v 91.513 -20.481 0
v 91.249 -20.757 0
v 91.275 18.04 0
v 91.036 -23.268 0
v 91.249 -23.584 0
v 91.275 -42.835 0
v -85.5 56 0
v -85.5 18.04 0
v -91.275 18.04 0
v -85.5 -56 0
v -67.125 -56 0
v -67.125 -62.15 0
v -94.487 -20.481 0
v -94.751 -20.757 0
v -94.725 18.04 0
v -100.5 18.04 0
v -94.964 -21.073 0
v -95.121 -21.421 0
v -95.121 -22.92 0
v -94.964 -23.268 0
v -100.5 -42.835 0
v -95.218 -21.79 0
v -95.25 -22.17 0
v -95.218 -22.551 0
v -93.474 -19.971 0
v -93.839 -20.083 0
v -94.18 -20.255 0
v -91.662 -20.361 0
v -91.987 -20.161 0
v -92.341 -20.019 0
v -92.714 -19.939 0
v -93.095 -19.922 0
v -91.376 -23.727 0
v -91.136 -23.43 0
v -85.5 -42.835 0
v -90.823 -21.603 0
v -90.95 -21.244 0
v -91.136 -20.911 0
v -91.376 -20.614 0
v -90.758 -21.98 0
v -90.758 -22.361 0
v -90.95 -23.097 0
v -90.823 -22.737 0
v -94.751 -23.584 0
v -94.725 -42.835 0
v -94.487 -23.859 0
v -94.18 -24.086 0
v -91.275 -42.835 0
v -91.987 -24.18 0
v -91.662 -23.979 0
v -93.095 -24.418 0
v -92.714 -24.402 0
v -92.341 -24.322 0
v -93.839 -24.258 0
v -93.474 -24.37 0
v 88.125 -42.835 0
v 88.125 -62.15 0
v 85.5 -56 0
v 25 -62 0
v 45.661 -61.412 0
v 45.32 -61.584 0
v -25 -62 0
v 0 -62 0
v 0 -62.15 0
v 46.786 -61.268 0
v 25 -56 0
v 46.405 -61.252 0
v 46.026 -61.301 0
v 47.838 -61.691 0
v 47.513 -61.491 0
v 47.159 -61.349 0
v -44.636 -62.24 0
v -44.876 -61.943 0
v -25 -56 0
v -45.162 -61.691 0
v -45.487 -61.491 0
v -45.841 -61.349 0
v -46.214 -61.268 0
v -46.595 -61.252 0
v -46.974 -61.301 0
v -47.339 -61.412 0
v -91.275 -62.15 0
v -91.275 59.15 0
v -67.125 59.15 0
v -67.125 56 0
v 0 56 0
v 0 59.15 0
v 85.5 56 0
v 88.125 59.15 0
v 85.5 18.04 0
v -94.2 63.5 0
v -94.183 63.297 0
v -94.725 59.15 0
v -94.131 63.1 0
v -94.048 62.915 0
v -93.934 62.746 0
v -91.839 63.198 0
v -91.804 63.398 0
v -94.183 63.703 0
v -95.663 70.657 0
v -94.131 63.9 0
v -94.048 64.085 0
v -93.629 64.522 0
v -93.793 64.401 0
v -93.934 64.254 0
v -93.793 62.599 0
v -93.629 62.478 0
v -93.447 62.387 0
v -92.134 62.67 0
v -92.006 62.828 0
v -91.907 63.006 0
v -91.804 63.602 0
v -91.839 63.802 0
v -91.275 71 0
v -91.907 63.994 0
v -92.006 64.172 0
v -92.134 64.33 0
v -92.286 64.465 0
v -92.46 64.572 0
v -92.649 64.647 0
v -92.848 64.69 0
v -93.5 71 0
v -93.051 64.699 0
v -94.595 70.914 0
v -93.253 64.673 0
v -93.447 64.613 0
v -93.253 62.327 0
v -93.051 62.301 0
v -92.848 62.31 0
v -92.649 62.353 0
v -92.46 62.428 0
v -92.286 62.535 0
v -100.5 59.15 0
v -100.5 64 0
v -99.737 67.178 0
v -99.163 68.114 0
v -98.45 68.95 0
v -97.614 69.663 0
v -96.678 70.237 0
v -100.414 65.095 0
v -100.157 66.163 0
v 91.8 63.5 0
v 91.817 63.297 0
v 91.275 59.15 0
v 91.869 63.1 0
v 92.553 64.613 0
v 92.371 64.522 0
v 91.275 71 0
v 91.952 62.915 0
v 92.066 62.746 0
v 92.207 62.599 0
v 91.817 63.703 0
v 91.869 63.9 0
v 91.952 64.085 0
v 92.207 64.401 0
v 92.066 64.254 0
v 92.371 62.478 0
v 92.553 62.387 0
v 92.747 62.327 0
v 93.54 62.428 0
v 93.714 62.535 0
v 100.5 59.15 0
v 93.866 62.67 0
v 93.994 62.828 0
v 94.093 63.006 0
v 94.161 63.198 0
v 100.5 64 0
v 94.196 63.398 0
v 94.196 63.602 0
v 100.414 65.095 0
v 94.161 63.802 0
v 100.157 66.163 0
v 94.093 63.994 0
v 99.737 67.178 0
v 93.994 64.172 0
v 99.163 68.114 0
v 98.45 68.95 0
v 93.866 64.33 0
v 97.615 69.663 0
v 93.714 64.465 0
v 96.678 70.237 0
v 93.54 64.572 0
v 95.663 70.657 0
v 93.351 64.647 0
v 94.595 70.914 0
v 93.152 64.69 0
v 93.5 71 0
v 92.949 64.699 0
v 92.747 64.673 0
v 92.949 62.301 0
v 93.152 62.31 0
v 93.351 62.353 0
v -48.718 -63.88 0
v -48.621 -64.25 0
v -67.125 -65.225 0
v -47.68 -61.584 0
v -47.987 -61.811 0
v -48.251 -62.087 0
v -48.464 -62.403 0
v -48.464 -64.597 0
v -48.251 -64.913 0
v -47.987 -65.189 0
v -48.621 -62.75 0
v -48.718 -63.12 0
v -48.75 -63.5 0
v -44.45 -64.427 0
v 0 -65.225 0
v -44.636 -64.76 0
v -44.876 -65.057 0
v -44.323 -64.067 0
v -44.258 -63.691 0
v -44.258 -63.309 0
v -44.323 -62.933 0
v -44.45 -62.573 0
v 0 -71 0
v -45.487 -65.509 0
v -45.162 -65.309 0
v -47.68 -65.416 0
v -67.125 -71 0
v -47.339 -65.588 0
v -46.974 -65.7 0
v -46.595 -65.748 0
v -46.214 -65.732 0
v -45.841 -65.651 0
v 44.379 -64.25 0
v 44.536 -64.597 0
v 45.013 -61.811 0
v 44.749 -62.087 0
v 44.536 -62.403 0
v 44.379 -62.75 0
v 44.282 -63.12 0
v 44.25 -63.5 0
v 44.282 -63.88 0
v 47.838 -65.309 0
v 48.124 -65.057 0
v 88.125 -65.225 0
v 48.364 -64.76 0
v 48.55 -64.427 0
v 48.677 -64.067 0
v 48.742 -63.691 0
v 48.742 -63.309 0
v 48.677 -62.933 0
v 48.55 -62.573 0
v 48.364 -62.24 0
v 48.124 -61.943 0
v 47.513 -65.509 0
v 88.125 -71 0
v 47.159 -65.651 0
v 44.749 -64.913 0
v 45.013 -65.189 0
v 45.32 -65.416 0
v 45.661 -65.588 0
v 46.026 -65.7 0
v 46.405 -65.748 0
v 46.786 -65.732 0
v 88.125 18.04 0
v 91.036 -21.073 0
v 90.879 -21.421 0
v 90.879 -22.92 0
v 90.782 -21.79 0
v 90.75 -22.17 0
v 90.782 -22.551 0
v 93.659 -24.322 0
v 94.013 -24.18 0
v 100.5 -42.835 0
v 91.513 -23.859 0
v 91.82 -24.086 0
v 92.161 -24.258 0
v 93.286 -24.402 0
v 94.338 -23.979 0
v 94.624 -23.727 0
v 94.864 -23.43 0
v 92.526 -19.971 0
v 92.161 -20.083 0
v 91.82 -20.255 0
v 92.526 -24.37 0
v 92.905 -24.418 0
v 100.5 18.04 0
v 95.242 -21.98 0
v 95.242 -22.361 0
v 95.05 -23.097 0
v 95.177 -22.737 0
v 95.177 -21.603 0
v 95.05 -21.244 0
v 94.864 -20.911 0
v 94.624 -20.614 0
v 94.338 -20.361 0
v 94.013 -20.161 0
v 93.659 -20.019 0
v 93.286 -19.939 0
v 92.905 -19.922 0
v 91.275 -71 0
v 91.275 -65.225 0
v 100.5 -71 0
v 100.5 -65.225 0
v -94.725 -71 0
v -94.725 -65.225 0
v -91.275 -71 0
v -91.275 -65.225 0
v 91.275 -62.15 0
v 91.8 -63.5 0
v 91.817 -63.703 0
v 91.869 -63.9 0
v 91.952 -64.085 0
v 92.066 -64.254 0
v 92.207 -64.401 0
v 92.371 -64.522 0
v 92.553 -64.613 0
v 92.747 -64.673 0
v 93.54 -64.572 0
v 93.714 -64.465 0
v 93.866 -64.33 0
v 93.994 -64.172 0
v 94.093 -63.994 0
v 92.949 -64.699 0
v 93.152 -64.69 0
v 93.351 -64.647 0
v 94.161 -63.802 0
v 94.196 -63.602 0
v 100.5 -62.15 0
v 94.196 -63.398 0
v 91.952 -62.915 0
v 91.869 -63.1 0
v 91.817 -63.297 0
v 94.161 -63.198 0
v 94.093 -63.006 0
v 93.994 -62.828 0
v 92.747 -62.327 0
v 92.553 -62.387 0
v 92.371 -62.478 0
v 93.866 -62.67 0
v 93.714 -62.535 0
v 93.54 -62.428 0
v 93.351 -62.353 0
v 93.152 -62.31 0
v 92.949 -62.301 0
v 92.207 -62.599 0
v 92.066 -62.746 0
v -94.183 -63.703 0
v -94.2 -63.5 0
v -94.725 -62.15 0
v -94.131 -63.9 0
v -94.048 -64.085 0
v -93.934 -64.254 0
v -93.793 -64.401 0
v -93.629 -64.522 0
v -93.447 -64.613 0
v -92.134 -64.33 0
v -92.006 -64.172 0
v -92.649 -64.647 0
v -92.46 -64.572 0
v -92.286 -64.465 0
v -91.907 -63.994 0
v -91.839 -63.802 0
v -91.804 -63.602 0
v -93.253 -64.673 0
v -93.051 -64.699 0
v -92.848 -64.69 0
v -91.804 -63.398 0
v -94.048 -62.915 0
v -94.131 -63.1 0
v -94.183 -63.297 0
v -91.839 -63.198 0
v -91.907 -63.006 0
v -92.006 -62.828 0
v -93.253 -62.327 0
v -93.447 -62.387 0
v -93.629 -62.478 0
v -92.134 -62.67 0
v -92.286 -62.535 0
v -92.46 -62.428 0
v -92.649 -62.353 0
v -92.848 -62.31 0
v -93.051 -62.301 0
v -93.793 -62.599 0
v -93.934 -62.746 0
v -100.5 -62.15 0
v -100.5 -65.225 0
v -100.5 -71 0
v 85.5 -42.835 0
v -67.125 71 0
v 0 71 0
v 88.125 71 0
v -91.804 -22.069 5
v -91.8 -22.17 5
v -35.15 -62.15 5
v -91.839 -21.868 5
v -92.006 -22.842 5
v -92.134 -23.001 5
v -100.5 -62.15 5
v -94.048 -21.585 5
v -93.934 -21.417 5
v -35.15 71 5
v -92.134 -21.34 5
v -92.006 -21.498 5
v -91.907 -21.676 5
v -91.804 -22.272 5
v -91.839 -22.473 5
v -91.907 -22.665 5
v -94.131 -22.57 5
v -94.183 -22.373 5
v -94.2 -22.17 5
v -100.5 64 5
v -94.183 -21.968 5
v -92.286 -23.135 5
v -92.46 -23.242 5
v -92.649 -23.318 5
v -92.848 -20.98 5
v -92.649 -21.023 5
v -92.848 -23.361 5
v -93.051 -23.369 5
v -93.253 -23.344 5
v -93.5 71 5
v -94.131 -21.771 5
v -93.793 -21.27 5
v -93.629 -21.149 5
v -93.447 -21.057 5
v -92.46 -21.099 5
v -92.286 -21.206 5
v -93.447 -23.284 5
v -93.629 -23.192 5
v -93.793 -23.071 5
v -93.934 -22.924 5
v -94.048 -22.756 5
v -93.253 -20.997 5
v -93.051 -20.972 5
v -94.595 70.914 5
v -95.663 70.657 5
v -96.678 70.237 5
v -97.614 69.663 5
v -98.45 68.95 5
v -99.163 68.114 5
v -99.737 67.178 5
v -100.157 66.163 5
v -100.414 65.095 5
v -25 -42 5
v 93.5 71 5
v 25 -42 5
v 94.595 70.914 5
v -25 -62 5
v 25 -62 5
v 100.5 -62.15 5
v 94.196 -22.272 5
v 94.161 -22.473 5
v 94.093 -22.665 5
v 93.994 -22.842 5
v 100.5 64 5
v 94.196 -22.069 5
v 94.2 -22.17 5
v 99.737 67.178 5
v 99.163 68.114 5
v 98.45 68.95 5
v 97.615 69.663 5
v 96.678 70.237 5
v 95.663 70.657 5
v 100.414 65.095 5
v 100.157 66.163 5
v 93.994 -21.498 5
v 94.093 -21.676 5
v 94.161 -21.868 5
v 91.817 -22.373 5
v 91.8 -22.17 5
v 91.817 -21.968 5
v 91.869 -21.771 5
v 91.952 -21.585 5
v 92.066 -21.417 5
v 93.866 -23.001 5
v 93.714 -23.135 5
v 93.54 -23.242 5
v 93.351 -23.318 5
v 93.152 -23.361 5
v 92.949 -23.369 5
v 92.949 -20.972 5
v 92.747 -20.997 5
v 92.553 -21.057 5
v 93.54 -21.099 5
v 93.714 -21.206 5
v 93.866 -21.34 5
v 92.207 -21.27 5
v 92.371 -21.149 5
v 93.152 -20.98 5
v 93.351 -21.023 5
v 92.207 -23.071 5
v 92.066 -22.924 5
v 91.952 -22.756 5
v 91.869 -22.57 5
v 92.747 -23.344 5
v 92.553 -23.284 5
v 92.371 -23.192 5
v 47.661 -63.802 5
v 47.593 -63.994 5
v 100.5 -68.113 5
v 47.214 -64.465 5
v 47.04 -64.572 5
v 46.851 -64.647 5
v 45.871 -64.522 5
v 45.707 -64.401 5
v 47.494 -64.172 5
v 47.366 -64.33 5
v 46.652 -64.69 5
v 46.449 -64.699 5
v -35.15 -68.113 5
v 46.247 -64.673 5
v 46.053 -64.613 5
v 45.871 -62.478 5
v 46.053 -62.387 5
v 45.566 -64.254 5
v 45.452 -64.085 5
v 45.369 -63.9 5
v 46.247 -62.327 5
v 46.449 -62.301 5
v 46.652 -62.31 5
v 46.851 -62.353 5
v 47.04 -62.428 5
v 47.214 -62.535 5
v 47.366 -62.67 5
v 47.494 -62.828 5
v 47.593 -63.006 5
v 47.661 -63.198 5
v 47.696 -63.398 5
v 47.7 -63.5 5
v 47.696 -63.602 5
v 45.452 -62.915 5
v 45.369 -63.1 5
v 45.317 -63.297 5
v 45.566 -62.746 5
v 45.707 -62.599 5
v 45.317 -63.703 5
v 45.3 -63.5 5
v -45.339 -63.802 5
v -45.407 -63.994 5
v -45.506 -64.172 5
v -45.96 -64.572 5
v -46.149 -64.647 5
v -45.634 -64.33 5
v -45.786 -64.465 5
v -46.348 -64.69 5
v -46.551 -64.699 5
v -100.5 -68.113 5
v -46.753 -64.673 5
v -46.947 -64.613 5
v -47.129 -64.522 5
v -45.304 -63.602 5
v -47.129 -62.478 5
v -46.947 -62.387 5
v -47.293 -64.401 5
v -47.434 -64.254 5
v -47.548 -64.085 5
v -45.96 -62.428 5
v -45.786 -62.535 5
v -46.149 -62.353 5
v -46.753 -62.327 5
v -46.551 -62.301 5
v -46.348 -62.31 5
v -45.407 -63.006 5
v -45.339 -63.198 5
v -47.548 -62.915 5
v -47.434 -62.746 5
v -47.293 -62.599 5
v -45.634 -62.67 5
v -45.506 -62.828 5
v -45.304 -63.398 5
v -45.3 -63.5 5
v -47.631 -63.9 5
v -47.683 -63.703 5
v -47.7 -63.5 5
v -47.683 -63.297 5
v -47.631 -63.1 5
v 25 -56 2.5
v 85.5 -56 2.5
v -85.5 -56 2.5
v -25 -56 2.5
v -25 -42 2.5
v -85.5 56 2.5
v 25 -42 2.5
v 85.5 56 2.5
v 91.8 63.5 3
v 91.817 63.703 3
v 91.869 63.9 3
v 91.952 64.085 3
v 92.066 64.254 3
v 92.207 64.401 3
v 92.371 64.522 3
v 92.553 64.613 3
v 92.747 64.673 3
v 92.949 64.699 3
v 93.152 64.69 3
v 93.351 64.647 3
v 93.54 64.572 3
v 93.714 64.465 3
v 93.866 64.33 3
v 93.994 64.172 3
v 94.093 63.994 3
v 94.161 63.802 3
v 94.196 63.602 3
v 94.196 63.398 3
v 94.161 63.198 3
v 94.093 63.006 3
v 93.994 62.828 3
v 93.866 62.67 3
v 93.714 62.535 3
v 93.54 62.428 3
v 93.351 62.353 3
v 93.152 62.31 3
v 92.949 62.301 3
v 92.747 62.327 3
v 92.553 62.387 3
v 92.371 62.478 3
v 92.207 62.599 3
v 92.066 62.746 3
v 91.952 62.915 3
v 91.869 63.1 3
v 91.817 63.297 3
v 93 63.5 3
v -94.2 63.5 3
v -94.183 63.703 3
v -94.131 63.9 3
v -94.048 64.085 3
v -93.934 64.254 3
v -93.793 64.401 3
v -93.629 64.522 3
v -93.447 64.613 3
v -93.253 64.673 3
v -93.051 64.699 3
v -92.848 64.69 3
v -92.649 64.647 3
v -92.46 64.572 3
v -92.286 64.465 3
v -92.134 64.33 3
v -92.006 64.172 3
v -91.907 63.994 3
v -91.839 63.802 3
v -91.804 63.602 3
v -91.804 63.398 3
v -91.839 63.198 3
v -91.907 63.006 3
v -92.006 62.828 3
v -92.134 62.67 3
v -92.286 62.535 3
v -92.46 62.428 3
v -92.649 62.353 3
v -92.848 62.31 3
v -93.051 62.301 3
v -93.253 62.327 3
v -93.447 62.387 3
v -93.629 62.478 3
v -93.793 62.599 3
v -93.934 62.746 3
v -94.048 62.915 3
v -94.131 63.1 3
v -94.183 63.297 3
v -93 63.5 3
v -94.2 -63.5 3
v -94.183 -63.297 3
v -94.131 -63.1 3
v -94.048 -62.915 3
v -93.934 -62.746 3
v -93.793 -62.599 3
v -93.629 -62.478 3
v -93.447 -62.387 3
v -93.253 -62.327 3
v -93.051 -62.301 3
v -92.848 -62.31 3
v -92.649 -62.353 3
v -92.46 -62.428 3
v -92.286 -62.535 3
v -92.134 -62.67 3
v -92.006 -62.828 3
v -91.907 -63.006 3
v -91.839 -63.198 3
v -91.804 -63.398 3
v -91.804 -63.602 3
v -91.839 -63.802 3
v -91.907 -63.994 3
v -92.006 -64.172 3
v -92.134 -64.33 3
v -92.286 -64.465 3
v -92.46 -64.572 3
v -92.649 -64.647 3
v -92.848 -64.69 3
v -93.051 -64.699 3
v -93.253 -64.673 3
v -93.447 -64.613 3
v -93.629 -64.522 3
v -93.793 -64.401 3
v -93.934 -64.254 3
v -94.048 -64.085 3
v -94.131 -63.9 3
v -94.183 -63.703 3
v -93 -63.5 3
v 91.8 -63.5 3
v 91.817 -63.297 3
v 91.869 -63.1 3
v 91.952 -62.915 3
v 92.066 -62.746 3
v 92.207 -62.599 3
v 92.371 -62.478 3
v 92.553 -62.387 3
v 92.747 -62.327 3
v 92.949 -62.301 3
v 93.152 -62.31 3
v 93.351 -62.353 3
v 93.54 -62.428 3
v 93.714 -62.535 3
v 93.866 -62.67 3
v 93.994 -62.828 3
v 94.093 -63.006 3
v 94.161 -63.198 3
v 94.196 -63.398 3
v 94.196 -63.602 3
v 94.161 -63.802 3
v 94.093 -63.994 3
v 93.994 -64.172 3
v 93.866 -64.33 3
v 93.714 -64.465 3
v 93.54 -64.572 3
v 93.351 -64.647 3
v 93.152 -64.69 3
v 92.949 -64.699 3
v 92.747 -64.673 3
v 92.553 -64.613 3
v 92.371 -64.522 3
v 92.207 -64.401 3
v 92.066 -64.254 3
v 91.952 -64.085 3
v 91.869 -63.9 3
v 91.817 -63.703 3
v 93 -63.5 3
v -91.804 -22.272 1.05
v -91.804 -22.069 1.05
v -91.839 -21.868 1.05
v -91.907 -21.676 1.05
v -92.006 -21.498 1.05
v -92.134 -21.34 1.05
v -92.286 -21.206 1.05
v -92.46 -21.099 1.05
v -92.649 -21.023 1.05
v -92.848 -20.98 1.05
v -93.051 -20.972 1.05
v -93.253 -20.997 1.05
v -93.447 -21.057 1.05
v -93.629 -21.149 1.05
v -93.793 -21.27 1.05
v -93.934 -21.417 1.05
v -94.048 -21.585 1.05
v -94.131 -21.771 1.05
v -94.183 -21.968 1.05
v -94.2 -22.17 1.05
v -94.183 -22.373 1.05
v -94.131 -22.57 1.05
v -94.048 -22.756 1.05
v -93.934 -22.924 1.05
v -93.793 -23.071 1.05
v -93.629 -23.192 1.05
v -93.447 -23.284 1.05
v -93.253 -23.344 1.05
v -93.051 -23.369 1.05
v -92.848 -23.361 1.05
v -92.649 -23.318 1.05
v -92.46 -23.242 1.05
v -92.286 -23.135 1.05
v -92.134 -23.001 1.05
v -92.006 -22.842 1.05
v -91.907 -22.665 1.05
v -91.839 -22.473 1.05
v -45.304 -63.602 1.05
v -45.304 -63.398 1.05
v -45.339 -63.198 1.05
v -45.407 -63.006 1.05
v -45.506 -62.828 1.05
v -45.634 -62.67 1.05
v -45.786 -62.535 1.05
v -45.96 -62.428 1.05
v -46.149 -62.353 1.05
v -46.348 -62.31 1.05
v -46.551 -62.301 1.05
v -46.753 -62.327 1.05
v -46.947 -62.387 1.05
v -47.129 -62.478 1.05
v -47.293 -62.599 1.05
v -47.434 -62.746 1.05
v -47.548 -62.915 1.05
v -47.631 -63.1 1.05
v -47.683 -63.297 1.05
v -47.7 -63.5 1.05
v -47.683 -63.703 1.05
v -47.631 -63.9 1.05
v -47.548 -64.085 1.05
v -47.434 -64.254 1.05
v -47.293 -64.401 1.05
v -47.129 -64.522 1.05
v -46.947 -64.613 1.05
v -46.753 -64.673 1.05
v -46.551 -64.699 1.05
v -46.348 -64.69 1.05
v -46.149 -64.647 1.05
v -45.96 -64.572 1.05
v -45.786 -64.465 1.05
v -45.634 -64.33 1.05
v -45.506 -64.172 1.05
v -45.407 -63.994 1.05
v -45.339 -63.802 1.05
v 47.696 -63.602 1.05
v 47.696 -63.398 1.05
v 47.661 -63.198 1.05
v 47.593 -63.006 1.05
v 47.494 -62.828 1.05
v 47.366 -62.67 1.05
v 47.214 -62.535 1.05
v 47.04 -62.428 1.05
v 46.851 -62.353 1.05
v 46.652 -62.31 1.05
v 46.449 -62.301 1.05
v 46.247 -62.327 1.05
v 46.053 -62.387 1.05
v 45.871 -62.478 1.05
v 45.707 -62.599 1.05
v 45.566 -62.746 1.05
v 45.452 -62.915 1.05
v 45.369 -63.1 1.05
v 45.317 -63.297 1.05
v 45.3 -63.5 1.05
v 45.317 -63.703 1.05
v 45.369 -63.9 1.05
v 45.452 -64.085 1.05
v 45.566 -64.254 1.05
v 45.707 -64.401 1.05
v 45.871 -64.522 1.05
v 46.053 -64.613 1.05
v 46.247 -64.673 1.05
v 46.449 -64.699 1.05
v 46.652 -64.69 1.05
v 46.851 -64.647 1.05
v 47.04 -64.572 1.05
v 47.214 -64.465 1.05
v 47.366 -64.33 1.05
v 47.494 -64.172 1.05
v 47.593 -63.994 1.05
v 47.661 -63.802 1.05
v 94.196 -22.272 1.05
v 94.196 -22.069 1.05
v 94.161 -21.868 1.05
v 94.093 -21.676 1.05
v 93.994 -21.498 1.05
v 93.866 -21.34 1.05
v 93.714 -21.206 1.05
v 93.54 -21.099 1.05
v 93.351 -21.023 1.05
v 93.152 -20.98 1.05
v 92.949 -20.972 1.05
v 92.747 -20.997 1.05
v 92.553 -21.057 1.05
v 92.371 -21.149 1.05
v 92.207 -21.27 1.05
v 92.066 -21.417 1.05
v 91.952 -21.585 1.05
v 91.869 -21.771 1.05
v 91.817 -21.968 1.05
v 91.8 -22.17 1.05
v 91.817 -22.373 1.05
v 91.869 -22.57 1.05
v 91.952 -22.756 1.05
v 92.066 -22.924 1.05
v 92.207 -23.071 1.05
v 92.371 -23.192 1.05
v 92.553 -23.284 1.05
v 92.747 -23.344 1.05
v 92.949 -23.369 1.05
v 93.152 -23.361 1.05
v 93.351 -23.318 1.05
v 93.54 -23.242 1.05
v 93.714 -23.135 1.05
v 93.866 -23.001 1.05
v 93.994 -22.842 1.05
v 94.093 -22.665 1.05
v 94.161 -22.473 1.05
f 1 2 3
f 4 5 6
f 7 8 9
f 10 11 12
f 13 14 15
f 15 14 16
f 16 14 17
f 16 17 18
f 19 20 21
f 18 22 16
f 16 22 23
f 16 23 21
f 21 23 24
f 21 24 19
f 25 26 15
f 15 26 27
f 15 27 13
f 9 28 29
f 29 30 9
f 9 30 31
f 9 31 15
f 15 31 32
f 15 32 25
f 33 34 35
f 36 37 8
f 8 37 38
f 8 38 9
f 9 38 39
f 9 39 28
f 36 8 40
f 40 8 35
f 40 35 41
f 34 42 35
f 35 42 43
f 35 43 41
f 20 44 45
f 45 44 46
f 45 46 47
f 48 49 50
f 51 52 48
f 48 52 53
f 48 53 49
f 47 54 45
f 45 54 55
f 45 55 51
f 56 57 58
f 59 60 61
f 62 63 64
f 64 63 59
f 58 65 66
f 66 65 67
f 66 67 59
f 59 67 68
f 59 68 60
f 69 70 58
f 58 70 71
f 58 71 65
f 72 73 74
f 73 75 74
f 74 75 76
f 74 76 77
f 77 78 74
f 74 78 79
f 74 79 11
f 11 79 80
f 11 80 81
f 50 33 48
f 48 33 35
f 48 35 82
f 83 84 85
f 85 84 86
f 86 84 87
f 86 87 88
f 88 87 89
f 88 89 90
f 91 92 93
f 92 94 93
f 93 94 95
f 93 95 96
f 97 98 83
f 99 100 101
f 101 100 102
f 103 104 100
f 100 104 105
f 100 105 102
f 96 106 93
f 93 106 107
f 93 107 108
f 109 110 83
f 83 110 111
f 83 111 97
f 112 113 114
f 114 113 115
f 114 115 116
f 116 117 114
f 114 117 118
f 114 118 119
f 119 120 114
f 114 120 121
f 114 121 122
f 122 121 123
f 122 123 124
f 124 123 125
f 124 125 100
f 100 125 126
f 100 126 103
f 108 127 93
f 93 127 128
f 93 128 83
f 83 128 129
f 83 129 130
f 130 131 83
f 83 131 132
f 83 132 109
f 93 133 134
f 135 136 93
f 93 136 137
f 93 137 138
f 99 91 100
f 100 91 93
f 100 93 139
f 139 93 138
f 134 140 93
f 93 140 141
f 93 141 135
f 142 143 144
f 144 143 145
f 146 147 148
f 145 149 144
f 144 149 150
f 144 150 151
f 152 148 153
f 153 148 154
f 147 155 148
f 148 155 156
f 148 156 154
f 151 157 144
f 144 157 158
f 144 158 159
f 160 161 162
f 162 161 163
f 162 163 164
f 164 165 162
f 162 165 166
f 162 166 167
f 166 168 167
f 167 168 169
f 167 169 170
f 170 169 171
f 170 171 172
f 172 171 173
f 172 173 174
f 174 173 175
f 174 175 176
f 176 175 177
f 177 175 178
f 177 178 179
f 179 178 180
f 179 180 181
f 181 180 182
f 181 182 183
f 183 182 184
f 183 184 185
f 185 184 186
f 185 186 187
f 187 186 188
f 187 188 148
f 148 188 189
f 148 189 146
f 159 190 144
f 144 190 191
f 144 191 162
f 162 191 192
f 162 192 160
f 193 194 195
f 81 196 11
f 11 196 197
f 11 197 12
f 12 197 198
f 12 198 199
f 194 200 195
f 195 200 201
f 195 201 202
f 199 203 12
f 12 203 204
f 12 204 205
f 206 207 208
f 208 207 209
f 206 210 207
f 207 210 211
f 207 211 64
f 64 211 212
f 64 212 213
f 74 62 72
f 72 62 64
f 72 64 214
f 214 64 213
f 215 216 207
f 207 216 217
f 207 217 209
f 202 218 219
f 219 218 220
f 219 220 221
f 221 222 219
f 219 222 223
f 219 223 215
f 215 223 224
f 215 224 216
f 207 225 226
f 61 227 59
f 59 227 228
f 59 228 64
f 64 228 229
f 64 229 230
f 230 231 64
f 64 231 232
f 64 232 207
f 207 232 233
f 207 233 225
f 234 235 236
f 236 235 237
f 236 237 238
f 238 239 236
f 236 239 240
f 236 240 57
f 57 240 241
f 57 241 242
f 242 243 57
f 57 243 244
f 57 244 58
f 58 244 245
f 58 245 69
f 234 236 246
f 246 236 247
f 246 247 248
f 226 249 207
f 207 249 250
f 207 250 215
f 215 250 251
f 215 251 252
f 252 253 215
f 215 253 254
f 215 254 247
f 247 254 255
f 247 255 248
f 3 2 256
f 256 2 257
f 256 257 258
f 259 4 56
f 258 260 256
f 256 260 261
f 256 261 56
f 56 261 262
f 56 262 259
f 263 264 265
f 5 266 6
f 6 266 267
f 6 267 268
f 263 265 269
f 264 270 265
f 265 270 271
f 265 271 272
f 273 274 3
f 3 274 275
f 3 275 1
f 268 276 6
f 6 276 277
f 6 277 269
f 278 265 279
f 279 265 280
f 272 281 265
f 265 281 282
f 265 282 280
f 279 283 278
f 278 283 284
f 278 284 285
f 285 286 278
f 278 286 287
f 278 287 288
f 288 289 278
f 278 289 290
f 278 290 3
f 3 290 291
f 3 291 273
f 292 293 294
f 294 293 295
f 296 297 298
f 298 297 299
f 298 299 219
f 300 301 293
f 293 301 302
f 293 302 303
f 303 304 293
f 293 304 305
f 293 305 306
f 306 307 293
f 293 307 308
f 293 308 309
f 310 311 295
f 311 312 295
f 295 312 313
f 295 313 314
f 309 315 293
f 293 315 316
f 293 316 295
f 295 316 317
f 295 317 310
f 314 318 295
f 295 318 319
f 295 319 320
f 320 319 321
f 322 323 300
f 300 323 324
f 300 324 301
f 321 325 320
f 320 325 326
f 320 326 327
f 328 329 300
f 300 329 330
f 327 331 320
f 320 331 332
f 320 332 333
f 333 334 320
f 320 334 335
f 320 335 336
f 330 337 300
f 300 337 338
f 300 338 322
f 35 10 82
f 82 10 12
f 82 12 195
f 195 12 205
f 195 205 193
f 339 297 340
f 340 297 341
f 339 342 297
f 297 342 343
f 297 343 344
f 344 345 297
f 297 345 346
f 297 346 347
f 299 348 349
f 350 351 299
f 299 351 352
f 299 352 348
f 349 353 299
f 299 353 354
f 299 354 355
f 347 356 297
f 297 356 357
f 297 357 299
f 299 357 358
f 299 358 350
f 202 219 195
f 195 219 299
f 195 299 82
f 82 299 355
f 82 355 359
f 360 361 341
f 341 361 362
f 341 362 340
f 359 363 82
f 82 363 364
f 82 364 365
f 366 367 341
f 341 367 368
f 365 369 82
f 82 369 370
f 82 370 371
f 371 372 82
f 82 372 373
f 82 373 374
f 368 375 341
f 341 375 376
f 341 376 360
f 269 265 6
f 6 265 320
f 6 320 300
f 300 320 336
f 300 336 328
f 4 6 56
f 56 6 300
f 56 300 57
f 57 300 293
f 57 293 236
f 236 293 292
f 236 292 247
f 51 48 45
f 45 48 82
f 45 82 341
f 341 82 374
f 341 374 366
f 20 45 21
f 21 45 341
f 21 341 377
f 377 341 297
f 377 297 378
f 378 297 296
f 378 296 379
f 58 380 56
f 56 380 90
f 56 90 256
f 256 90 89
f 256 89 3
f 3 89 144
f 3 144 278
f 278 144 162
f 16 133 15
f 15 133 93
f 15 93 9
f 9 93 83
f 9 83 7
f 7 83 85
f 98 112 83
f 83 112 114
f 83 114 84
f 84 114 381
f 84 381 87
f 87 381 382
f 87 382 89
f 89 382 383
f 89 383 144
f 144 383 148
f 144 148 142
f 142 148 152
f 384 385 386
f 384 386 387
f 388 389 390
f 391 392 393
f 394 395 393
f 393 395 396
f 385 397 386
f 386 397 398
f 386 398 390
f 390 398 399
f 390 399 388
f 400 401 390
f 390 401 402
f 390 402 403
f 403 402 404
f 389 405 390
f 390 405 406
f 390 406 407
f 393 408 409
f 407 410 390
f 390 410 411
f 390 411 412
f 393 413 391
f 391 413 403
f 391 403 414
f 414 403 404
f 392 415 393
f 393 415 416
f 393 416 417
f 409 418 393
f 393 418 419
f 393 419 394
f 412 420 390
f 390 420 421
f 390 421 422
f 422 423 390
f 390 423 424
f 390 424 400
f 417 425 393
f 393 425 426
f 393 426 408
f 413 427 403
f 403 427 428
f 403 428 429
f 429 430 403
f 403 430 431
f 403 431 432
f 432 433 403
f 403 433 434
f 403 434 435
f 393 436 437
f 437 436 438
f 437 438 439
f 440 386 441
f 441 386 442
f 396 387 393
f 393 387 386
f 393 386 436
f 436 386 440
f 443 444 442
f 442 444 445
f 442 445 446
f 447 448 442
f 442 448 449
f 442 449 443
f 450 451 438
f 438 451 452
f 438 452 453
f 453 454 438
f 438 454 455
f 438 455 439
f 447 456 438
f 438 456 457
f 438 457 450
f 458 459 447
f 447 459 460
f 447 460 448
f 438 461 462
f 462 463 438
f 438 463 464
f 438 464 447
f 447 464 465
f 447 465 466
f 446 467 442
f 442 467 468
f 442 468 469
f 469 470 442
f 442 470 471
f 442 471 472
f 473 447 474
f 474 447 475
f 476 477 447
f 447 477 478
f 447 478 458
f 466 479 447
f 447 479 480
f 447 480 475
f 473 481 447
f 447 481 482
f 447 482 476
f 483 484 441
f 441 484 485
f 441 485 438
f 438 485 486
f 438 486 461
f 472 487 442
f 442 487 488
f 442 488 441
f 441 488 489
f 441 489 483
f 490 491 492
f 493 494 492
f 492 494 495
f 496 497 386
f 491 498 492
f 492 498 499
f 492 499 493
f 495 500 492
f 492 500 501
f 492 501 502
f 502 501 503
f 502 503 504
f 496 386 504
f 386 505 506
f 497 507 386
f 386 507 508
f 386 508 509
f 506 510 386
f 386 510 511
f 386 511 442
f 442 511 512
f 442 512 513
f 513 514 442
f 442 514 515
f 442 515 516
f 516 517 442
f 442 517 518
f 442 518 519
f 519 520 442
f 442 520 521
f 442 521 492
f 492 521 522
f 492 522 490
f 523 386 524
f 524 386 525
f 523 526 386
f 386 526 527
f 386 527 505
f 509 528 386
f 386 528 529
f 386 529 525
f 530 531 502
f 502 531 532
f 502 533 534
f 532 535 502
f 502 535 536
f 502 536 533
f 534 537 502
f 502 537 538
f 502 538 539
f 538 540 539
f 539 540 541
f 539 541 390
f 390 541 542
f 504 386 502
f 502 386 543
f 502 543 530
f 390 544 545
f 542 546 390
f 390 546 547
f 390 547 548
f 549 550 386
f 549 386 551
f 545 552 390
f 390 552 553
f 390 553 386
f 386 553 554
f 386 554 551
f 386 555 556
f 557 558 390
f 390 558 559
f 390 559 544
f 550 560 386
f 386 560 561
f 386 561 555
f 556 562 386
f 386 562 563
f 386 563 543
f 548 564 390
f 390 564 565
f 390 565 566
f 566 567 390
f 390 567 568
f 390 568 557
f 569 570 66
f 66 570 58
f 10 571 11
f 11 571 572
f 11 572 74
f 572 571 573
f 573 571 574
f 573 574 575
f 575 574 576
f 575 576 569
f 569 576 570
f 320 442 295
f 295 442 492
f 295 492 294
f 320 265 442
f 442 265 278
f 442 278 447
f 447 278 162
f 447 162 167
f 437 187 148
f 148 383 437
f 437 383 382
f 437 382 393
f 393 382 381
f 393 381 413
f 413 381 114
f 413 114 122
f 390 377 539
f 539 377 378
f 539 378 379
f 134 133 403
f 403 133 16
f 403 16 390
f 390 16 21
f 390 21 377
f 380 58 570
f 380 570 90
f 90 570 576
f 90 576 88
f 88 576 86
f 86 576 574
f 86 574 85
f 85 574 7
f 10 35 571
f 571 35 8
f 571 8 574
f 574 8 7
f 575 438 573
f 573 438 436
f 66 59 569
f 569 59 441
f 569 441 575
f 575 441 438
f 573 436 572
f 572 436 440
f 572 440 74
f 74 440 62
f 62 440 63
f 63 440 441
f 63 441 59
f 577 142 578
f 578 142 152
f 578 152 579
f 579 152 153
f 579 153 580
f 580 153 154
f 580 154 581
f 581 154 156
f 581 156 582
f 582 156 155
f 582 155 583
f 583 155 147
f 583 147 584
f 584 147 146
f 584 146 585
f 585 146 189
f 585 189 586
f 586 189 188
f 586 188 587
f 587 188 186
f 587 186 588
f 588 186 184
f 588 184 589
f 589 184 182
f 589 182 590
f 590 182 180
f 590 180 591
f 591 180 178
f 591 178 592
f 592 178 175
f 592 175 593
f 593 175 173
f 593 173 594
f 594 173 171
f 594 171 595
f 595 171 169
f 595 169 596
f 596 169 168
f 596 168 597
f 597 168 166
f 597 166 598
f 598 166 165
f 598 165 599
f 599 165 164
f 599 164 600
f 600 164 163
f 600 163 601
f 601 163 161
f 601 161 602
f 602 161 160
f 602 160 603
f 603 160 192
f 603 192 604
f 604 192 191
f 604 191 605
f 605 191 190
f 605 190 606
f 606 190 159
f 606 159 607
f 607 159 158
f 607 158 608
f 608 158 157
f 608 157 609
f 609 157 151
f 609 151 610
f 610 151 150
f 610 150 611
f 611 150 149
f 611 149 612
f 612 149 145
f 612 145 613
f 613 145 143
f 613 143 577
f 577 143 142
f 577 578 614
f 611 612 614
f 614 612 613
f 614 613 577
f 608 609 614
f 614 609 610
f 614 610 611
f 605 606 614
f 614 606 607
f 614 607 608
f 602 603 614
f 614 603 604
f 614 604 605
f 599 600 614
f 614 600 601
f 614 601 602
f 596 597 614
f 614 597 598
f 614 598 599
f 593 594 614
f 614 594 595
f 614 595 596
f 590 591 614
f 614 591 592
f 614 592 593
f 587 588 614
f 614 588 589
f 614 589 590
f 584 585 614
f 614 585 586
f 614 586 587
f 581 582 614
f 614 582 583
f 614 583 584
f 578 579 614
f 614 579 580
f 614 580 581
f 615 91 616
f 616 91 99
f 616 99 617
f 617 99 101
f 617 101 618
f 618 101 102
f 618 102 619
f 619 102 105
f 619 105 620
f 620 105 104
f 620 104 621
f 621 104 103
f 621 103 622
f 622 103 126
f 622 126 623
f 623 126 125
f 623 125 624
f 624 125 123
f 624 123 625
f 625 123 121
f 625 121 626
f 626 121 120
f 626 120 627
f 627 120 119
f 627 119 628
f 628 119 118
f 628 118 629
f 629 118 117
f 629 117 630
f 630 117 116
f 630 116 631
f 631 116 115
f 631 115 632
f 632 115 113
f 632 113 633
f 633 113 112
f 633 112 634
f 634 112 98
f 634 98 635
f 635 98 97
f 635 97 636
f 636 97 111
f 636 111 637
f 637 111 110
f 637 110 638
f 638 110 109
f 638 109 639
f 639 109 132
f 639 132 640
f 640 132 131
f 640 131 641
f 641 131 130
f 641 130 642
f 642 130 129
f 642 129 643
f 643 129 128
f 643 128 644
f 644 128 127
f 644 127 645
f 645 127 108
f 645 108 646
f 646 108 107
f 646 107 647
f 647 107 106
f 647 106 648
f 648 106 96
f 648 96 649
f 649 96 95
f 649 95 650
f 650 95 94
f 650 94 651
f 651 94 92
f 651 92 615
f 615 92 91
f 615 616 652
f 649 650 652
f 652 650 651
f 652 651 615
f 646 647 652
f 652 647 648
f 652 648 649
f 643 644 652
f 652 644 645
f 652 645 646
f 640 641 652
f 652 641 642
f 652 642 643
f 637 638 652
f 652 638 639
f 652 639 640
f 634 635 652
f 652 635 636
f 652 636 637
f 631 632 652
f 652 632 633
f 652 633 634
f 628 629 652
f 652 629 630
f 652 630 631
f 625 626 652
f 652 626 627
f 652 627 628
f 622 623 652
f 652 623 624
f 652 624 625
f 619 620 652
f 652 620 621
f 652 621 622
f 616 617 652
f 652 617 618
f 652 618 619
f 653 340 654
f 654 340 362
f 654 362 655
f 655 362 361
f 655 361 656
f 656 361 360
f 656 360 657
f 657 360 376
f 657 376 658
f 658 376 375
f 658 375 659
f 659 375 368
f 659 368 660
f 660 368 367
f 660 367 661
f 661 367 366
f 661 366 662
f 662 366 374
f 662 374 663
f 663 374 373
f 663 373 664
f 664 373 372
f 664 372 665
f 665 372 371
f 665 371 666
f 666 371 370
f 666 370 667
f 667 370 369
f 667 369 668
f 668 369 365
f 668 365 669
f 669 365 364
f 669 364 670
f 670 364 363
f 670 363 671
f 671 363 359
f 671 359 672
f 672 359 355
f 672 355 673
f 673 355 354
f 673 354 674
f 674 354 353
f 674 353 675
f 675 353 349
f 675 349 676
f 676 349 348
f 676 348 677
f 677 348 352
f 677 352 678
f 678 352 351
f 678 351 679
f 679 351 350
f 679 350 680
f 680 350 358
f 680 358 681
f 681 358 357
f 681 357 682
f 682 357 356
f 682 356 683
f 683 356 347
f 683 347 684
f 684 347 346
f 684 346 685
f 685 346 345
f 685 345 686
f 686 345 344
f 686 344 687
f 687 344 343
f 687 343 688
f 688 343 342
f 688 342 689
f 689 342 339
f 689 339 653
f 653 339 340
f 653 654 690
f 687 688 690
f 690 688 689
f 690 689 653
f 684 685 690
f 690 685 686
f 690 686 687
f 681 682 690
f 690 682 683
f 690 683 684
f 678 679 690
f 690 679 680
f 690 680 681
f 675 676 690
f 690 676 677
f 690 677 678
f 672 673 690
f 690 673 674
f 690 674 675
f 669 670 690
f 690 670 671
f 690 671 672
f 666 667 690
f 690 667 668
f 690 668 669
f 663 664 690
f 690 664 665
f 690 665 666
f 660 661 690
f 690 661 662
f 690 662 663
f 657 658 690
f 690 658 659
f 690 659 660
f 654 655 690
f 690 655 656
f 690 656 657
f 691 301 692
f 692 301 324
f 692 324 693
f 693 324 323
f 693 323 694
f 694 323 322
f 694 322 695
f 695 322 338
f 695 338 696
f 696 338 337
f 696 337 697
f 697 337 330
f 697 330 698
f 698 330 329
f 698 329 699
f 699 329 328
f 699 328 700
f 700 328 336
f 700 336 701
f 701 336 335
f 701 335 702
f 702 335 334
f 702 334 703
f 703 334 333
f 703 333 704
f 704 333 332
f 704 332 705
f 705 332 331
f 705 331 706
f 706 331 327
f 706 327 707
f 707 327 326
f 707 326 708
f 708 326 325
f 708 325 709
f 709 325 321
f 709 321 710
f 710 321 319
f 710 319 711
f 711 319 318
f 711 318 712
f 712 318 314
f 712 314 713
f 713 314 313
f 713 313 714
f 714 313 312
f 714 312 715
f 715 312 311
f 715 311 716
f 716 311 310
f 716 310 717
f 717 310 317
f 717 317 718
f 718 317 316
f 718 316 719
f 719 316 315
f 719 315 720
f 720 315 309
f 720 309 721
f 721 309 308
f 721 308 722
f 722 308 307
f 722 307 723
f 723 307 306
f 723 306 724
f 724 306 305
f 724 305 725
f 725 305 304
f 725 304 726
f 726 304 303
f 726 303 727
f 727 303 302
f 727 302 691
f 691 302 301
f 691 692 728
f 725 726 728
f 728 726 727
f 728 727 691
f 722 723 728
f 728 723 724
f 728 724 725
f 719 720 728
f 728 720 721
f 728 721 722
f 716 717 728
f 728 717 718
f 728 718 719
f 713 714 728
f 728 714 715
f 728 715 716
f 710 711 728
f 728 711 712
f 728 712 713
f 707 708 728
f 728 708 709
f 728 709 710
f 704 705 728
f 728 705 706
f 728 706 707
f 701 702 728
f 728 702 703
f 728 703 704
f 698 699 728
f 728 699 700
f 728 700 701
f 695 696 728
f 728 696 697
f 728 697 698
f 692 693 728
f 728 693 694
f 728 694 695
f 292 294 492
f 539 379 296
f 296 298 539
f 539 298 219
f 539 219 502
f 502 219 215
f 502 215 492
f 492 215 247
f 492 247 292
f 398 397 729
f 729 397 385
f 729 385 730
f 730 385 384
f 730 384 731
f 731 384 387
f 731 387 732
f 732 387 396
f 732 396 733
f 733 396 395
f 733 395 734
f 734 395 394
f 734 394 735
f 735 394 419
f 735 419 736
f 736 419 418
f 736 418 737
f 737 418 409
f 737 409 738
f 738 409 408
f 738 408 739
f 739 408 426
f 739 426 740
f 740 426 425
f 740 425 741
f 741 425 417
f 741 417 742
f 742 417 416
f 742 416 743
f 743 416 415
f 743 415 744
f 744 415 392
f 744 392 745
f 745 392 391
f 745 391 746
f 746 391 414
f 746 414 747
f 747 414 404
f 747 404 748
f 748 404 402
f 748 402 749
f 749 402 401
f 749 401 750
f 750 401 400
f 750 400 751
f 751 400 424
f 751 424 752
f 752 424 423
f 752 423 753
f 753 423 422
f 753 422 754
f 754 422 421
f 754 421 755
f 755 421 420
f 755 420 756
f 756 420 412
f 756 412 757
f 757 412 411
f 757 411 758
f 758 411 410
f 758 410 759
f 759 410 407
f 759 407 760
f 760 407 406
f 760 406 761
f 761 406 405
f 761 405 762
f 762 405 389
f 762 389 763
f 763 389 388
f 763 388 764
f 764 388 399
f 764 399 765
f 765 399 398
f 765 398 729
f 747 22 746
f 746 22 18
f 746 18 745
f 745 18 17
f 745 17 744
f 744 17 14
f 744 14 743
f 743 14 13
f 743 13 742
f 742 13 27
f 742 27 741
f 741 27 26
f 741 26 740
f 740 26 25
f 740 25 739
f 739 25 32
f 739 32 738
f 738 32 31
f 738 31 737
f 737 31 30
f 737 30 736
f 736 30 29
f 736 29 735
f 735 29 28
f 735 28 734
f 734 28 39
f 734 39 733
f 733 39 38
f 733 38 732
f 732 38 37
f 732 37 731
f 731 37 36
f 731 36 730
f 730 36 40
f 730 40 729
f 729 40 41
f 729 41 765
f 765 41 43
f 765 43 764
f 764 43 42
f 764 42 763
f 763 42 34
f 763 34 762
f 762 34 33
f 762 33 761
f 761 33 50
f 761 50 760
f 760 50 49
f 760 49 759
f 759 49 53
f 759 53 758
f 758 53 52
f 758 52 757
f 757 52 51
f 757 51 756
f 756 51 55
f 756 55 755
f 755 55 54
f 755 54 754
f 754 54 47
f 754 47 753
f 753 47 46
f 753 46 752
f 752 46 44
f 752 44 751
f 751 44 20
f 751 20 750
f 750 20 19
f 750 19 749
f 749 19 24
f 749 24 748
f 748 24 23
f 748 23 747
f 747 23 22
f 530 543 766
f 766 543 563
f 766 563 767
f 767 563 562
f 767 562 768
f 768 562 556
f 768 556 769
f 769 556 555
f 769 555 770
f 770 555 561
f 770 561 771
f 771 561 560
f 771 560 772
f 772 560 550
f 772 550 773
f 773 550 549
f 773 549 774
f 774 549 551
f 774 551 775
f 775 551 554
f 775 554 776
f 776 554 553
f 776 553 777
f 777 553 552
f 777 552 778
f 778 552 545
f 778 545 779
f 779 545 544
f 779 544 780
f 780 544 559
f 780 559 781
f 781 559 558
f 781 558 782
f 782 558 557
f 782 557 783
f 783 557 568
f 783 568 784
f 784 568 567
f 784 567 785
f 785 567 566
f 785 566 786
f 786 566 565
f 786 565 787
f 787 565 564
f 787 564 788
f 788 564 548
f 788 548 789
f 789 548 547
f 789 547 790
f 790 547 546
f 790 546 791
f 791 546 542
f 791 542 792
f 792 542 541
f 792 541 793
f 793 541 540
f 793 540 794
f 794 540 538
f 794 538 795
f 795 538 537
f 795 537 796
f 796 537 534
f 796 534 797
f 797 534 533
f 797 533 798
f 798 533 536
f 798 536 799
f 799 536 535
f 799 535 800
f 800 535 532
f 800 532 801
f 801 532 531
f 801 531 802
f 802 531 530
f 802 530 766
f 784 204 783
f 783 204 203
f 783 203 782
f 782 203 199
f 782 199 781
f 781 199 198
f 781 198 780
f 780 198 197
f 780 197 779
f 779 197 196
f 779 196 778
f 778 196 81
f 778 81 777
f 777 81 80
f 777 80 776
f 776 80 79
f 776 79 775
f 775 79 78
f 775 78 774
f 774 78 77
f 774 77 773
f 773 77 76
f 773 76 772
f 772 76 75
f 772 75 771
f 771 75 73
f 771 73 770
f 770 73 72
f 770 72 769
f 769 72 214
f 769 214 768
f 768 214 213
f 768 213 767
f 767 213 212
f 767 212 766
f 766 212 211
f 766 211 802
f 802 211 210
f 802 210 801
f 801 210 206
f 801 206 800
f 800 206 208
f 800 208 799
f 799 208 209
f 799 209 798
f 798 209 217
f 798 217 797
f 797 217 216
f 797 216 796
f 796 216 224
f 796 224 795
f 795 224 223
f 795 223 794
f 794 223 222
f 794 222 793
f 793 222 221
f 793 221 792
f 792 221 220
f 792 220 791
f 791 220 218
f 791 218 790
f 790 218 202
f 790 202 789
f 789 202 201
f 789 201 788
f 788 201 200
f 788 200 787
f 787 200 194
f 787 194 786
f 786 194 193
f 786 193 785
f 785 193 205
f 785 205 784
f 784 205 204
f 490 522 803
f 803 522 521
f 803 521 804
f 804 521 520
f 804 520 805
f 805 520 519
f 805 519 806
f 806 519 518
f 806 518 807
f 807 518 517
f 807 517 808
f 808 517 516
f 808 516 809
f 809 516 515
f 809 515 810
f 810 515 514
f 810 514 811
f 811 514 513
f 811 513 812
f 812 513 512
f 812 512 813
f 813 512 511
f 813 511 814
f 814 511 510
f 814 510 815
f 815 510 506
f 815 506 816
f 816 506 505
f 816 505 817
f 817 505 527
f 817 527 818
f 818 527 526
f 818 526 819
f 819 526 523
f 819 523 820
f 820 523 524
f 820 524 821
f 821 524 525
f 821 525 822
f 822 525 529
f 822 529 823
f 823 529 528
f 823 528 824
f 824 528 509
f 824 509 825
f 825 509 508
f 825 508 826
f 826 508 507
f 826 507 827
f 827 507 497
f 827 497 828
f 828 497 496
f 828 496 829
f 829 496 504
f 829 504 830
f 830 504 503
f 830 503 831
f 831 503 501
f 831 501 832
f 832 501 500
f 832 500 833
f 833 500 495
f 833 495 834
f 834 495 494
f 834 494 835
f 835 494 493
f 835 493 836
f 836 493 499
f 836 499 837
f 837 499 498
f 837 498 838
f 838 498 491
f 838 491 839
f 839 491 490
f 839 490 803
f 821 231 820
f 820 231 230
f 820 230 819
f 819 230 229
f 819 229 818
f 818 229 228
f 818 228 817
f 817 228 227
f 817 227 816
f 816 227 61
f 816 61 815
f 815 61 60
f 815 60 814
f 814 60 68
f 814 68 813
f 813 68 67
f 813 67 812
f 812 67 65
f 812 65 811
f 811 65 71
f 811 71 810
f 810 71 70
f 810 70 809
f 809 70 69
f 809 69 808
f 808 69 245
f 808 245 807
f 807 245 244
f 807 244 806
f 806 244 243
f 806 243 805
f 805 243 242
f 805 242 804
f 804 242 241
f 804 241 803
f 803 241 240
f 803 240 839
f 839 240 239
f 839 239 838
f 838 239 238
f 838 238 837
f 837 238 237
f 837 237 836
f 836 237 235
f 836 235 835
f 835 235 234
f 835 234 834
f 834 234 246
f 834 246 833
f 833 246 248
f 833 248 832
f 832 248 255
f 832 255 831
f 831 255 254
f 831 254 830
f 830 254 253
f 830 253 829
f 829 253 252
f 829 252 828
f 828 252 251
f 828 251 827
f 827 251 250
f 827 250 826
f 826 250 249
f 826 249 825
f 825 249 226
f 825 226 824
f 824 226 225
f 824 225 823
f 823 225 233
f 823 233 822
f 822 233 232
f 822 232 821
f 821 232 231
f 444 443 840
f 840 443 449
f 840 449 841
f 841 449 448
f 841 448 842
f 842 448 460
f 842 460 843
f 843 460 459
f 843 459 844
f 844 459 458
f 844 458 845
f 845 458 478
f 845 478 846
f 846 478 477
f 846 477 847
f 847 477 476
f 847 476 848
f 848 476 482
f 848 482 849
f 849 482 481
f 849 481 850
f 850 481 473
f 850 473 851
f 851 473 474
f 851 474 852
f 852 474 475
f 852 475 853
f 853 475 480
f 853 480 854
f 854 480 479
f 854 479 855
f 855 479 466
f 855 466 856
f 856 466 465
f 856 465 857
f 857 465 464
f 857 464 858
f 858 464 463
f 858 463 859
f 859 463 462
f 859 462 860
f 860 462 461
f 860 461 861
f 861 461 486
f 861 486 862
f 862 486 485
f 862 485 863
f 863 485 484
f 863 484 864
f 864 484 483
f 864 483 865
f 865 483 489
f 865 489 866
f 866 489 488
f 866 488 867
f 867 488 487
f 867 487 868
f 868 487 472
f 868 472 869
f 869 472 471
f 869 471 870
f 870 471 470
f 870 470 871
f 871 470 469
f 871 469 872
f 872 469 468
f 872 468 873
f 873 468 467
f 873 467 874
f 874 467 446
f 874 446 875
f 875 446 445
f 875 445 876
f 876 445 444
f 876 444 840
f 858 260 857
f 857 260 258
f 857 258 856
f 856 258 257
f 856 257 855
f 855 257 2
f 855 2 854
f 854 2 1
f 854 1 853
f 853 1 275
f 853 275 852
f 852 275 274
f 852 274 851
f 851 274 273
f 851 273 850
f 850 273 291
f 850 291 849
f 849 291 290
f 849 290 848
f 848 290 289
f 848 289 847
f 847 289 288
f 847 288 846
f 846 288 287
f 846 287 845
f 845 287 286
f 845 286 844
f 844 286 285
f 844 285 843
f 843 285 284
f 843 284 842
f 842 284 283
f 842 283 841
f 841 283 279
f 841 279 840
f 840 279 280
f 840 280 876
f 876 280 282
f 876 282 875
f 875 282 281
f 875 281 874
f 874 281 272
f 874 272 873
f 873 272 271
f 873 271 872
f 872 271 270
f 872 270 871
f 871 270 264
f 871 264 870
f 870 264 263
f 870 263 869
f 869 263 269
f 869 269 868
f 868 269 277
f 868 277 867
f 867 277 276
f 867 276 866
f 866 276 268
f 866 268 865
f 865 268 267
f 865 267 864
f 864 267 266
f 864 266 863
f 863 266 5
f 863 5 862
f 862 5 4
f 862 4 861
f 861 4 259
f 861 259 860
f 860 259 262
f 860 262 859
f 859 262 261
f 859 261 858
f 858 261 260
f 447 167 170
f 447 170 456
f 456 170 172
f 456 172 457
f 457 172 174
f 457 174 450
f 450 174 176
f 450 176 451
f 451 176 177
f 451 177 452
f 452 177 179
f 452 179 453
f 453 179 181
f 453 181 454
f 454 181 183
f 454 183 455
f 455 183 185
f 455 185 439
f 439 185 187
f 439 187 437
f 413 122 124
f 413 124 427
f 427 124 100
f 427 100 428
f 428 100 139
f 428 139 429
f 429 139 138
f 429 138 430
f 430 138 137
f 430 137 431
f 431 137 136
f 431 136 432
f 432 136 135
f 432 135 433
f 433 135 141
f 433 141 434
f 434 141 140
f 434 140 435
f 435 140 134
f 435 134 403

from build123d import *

# Parameters (mm, degrees)
SKETCH_3_W                = 201
SKETCH_3_H                = 142
EXTRUDE_2_DEPTH           = 5
SKETCH_4_W                = 171
SKETCH_4_H                = 112
CUT_EXTRUDE_1_DEPTH       = 2.5
SKETCH_5_W                = 50
SKETCH_5_H                = 20
CUT_EXTRUDE_6_DEPTH       = 15
SKETCH_6_R                = 1.2
CUT_EXTRUDE_7_DEPTH       = 3
CUT_EXTRUDE_8_REACH       = 215.23
HOLE_WIZARD_1_D           = 2.4
HOLE_WIZARD_1_CSINK_D     = 4.5
HOLE_WIZARD_1_CSINK_ANGLE = 90
FILLET_1_R                = 7


with BuildPart() as part:
    # 草图3 → 凸台-拉伸2 (new body)
    with BuildSketch(Plane.XY):
        Rectangle(SKETCH_3_W, SKETCH_3_H)
    extrude(amount=EXTRUDE_2_DEPTH)

    # 草图4 → 切除-拉伸1 (cut)
    with BuildSketch(Plane.XY):
        Rectangle(SKETCH_4_W, SKETCH_4_H)
    extrude(amount=CUT_EXTRUDE_1_DEPTH, mode=Mode.SUBTRACT)

    # 草图5 → 切除-拉伸6 (cut)
    with BuildSketch(Plane.XY):
        with Locations((0, -52)):
            Rectangle(SKETCH_5_W, SKETCH_5_H)
    extrude(amount=CUT_EXTRUDE_6_DEPTH, mode=Mode.SUBTRACT)

    # 草图6 → 切除-拉伸7 (cut)
    with BuildSketch(Plane(origin=(0, 0, 0), x_dir=(-1, 0, 0), z_dir=(0, 0, -1))):
        with Locations((-93, 63.5)):
            Circle(SKETCH_6_R)
        with Locations((93, 63.5)):
            Circle(SKETCH_6_R)
        with Locations((93, -63.5)):
            Circle(SKETCH_6_R)
        with Locations((-93, -63.5)):
            Circle(SKETCH_6_R)
    extrude(amount=-CUT_EXTRUDE_7_DEPTH, mode=Mode.SUBTRACT)

    # 草图9 → 切除-拉伸8 (cut, up to next)
    with BuildSketch(Plane.ZY.offset(100.5), mode=Mode.PRIVATE) as cut_extrude_8_sk1:
        Polygon((0, -71), (5, -71), (5, -68.113248654), align=None)
    cut_extrude_8_tool1 = extrude(cut_extrude_8_sk1.sketch, amount=-CUT_EXTRUDE_8_REACH, mode=Mode.PRIVATE) & part.part
    add(cut_extrude_8_tool1.solids().sort_by_distance((-100.5, -70.03775, 3.333333))[0], mode=Mode.SUBTRACT)

    # 打孔尺寸(%根据十字)槽沉头自攻螺钉的类型1 (through all)
    with Locations(Plane(origin=(0, 0, 0), x_dir=(-1, 0, 0), z_dir=(0, 0, -1))):
        with Locations((-93, -22.170448124), (-46.5, -63.5), (46.5, -63.5), (93, -22.170448124)):
            CounterSinkHole(HOLE_WIZARD_1_D / 2, HOLE_WIZARD_1_CSINK_D / 2, counter_sink_angle=HOLE_WIZARD_1_CSINK_ANGLE)

    # 圆角1
    fillet_1_edges = [part.edges().sort_by_distance(p)[0] for p in [
        (-100.5, 71, 2.5),
        (100.5, 71, 2.5),
    ]]
    fillet(fillet_1_edges, radius=FILLET_1_R)


solid = part.part
